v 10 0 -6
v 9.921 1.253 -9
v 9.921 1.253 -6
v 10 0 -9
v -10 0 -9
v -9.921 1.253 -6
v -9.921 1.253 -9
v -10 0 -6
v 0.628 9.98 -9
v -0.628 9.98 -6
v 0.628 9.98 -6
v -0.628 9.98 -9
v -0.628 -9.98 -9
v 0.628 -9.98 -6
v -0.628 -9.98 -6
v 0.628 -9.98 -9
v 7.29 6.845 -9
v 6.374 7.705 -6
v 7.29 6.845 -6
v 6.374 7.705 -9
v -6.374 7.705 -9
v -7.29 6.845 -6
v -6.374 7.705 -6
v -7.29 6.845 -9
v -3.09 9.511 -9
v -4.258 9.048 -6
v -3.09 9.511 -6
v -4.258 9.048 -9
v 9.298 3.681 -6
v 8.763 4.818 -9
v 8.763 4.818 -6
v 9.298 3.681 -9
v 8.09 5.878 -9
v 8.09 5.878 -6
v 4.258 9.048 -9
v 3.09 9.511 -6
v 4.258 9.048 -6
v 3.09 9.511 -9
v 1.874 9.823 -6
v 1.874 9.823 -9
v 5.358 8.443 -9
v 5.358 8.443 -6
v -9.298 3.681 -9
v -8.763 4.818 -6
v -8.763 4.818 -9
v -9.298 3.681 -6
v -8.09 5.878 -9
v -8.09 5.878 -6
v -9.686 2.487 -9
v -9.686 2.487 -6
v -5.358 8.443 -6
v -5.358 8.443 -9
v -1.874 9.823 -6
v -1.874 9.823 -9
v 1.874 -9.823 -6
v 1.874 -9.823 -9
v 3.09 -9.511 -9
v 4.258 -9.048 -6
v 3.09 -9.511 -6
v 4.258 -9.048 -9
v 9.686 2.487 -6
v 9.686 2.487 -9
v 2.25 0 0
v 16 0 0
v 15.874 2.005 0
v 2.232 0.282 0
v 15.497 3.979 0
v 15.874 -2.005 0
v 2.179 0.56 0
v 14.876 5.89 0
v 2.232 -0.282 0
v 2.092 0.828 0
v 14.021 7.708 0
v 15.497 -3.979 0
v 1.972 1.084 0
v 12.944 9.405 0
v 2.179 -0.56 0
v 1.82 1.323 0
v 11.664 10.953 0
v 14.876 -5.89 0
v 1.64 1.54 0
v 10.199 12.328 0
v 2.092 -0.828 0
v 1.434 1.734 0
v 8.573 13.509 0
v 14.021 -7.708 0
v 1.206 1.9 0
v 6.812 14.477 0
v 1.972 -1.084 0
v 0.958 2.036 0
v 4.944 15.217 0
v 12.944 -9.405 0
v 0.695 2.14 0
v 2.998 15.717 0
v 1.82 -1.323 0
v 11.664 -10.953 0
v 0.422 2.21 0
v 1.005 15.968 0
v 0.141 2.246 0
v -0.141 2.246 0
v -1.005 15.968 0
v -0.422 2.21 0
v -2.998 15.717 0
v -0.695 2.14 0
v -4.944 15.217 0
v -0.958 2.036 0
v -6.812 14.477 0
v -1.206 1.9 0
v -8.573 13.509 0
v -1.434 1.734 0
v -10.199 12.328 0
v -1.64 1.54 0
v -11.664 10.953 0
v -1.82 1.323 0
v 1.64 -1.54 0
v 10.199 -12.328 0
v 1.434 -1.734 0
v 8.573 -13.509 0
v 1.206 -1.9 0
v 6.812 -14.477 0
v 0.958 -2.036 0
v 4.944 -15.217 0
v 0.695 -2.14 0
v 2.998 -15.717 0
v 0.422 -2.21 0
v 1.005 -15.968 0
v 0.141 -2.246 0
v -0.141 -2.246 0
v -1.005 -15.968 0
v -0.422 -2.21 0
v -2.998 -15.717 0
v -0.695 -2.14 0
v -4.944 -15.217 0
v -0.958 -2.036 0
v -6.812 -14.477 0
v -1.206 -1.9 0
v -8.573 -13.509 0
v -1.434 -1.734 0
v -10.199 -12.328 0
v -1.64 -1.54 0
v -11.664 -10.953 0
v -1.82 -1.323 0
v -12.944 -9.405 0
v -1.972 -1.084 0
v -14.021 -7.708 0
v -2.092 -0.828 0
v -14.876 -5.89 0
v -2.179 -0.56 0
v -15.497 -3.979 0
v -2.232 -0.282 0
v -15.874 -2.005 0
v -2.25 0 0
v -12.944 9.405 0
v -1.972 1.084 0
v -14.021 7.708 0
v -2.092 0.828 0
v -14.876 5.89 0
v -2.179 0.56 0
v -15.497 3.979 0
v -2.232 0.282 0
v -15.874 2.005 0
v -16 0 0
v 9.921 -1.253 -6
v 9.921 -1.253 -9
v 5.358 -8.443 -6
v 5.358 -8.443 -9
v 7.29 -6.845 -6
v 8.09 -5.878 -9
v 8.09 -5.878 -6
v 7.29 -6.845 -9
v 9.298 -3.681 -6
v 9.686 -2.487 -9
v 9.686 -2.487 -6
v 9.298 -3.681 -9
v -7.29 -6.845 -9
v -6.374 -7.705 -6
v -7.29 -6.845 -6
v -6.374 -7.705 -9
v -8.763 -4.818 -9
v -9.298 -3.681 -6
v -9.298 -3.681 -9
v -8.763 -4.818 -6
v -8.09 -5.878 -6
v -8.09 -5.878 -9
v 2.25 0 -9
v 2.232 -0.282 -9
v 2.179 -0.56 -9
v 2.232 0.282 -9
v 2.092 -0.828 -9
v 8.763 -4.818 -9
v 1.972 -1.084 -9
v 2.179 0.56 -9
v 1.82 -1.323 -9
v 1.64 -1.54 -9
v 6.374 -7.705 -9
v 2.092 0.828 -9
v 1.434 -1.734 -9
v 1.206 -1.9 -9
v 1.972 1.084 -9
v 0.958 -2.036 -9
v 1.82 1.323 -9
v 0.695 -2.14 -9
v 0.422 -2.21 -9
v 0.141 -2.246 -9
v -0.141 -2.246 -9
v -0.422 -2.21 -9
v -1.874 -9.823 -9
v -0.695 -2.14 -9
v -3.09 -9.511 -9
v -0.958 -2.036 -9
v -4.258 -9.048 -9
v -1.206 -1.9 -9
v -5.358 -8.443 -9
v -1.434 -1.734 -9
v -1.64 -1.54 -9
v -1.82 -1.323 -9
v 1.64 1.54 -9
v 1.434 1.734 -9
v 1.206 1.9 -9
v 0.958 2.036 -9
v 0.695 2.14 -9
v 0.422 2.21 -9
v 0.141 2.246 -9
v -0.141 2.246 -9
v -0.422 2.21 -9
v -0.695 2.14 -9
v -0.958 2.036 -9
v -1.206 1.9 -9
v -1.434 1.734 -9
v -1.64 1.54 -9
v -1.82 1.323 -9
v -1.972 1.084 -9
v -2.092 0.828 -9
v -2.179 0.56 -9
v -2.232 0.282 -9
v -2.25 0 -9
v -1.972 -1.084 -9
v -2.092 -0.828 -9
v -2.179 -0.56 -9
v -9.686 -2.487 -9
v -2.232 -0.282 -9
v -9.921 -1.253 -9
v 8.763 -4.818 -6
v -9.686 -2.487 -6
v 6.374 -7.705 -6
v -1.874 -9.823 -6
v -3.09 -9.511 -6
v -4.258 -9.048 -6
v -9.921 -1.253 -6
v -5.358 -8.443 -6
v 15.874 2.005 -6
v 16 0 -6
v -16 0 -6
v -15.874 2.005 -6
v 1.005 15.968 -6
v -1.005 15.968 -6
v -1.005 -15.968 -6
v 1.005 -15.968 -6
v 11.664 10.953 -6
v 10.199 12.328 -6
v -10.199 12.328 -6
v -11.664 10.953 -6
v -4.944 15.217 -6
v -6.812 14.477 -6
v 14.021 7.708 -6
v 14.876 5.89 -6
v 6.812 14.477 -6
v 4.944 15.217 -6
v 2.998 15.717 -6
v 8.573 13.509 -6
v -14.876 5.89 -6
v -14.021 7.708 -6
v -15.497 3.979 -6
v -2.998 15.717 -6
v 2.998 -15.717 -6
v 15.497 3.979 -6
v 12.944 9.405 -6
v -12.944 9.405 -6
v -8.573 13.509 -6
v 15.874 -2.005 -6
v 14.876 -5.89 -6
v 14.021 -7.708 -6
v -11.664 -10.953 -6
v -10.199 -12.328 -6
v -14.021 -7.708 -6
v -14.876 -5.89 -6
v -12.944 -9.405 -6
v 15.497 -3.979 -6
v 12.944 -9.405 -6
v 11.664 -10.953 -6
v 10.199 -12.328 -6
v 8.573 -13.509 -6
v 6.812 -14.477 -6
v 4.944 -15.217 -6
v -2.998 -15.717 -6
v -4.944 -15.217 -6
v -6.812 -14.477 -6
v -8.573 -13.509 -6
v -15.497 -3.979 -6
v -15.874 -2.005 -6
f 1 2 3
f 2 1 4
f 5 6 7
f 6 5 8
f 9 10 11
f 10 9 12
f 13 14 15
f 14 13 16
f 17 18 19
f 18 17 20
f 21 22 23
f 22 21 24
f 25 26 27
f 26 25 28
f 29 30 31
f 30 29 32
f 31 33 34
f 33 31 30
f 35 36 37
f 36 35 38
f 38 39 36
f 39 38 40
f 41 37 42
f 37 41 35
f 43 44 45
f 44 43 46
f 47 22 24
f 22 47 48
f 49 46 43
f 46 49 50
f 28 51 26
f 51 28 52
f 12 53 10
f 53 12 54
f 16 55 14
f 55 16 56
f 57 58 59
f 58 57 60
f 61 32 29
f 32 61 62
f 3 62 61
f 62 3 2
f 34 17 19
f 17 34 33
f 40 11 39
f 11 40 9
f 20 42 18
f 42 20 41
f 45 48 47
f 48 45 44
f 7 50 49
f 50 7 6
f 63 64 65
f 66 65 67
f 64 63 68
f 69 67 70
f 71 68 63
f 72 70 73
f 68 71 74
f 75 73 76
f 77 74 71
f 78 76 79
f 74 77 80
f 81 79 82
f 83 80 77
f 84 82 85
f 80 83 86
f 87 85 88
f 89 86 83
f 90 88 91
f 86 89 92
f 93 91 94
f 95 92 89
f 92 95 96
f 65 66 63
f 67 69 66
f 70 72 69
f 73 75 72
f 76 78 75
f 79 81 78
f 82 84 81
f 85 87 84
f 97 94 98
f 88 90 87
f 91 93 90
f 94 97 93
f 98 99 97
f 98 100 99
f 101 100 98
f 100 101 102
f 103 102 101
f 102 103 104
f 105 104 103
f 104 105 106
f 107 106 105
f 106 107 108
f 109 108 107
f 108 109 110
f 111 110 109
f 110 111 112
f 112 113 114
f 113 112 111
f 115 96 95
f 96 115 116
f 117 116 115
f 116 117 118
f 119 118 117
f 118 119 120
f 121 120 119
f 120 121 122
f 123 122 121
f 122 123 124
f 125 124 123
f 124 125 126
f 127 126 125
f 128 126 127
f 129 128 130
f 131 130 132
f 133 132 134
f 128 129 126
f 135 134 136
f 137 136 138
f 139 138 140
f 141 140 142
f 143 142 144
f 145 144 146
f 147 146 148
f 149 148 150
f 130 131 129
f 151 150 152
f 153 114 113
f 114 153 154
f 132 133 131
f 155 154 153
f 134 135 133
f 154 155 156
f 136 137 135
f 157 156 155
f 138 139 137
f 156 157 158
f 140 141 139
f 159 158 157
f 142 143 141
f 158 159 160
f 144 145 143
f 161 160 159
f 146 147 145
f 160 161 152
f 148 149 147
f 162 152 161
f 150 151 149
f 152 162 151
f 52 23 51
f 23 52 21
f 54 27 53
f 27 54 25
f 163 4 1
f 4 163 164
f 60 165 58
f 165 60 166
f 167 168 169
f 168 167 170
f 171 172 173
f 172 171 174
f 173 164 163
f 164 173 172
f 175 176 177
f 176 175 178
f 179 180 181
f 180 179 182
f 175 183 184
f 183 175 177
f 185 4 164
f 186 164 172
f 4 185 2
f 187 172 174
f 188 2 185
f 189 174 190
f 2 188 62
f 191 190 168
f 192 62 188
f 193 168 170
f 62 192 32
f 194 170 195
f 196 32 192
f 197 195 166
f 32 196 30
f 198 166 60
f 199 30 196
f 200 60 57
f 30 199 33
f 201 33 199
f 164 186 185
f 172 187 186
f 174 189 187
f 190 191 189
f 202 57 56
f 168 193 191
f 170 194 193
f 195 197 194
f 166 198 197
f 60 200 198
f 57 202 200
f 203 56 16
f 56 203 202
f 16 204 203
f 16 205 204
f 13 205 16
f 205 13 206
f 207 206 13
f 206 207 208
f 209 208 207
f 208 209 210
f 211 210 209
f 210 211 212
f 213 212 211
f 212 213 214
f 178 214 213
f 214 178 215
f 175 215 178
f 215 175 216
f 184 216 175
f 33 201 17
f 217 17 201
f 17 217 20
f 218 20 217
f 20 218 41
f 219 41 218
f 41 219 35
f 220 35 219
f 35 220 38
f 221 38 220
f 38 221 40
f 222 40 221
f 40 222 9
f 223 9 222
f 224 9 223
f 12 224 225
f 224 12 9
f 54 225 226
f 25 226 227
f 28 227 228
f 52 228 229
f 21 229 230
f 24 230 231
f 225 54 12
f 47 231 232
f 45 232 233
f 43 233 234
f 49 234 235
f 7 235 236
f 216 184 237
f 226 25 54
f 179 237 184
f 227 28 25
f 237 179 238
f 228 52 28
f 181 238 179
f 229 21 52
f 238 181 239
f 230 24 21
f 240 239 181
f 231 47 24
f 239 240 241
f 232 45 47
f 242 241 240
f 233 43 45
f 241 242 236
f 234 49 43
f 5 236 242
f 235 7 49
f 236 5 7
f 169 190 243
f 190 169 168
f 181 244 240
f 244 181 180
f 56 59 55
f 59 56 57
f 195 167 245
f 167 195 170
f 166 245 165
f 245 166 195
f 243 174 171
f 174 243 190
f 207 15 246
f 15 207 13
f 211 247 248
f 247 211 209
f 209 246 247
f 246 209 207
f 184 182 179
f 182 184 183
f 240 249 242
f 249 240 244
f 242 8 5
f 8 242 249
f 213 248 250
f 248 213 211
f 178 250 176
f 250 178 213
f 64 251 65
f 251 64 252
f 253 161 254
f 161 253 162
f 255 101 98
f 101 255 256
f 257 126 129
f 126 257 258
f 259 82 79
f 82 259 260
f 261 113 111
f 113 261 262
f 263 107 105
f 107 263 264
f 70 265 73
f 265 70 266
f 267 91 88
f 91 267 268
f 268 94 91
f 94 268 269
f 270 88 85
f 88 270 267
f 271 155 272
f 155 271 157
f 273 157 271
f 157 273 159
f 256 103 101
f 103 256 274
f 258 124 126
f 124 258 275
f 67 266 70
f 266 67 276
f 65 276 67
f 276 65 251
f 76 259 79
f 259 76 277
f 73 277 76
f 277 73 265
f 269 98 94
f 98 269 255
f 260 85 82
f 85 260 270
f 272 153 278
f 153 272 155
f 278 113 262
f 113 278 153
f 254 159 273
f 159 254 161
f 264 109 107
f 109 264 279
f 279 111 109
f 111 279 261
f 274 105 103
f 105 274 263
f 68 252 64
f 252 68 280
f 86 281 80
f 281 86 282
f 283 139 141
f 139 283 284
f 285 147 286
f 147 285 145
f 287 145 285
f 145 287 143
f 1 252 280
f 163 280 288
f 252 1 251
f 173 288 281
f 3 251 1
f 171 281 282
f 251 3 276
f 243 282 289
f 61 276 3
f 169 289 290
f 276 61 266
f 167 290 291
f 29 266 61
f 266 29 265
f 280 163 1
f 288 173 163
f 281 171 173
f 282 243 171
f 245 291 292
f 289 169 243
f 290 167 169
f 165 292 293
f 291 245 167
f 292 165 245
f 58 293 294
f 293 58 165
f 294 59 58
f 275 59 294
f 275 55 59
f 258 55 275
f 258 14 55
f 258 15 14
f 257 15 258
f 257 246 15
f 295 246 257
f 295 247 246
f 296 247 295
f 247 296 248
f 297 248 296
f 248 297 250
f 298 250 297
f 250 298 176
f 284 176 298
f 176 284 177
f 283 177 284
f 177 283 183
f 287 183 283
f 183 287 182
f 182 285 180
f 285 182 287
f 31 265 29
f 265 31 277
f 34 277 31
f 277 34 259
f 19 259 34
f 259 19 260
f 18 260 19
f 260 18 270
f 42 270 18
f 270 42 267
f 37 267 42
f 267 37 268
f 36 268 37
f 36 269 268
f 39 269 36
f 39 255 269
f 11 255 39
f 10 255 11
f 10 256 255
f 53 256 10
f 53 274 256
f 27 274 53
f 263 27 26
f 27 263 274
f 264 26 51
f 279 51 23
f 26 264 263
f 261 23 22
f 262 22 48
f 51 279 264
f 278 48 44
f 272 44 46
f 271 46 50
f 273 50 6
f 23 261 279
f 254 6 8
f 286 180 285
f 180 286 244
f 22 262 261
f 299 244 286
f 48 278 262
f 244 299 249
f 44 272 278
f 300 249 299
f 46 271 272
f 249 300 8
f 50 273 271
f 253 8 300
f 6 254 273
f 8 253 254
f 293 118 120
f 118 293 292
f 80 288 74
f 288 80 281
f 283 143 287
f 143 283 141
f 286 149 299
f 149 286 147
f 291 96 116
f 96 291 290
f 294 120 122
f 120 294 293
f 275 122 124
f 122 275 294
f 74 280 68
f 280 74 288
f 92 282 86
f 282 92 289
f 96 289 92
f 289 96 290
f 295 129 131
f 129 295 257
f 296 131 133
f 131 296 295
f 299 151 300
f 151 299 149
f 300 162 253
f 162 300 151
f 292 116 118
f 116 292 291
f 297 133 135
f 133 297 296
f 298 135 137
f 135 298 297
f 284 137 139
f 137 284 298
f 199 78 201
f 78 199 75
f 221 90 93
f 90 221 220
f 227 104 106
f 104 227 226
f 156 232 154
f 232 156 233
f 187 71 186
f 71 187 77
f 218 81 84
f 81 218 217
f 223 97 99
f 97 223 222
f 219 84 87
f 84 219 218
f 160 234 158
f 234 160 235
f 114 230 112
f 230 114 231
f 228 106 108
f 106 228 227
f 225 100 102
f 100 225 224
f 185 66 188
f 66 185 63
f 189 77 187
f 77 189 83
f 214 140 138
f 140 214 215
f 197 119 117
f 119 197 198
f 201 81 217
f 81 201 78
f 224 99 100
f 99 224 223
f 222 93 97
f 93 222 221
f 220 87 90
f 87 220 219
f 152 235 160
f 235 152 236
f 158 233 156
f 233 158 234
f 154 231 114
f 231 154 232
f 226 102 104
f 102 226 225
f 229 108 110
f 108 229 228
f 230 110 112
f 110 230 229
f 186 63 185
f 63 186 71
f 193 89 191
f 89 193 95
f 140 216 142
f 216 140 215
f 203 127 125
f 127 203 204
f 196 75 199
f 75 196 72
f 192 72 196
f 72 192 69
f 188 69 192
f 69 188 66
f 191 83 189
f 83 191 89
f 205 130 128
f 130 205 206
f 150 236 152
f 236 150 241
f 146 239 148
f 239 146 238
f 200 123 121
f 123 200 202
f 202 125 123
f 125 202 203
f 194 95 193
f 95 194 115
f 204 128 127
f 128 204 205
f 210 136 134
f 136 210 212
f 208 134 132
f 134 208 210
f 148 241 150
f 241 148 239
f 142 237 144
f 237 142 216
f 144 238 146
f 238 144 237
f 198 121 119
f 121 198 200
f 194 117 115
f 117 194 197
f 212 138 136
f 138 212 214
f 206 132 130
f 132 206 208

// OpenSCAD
$fn = 50;


difference() {
	union() {
		translate(v = [0, 0, -9.0000000000]) {
			cylinder(h = 9, r = 10.0000000000);
		}
		translate(v = [0, 0, -6.0000000000]) {
			cylinder(h = 6, r = 16.0000000000);
		}
	}
	union() {
		#translate(v = [0, 0, -9]) {
			cylinder(h = 9, r = 2.2500000000);
		}
	}
}
